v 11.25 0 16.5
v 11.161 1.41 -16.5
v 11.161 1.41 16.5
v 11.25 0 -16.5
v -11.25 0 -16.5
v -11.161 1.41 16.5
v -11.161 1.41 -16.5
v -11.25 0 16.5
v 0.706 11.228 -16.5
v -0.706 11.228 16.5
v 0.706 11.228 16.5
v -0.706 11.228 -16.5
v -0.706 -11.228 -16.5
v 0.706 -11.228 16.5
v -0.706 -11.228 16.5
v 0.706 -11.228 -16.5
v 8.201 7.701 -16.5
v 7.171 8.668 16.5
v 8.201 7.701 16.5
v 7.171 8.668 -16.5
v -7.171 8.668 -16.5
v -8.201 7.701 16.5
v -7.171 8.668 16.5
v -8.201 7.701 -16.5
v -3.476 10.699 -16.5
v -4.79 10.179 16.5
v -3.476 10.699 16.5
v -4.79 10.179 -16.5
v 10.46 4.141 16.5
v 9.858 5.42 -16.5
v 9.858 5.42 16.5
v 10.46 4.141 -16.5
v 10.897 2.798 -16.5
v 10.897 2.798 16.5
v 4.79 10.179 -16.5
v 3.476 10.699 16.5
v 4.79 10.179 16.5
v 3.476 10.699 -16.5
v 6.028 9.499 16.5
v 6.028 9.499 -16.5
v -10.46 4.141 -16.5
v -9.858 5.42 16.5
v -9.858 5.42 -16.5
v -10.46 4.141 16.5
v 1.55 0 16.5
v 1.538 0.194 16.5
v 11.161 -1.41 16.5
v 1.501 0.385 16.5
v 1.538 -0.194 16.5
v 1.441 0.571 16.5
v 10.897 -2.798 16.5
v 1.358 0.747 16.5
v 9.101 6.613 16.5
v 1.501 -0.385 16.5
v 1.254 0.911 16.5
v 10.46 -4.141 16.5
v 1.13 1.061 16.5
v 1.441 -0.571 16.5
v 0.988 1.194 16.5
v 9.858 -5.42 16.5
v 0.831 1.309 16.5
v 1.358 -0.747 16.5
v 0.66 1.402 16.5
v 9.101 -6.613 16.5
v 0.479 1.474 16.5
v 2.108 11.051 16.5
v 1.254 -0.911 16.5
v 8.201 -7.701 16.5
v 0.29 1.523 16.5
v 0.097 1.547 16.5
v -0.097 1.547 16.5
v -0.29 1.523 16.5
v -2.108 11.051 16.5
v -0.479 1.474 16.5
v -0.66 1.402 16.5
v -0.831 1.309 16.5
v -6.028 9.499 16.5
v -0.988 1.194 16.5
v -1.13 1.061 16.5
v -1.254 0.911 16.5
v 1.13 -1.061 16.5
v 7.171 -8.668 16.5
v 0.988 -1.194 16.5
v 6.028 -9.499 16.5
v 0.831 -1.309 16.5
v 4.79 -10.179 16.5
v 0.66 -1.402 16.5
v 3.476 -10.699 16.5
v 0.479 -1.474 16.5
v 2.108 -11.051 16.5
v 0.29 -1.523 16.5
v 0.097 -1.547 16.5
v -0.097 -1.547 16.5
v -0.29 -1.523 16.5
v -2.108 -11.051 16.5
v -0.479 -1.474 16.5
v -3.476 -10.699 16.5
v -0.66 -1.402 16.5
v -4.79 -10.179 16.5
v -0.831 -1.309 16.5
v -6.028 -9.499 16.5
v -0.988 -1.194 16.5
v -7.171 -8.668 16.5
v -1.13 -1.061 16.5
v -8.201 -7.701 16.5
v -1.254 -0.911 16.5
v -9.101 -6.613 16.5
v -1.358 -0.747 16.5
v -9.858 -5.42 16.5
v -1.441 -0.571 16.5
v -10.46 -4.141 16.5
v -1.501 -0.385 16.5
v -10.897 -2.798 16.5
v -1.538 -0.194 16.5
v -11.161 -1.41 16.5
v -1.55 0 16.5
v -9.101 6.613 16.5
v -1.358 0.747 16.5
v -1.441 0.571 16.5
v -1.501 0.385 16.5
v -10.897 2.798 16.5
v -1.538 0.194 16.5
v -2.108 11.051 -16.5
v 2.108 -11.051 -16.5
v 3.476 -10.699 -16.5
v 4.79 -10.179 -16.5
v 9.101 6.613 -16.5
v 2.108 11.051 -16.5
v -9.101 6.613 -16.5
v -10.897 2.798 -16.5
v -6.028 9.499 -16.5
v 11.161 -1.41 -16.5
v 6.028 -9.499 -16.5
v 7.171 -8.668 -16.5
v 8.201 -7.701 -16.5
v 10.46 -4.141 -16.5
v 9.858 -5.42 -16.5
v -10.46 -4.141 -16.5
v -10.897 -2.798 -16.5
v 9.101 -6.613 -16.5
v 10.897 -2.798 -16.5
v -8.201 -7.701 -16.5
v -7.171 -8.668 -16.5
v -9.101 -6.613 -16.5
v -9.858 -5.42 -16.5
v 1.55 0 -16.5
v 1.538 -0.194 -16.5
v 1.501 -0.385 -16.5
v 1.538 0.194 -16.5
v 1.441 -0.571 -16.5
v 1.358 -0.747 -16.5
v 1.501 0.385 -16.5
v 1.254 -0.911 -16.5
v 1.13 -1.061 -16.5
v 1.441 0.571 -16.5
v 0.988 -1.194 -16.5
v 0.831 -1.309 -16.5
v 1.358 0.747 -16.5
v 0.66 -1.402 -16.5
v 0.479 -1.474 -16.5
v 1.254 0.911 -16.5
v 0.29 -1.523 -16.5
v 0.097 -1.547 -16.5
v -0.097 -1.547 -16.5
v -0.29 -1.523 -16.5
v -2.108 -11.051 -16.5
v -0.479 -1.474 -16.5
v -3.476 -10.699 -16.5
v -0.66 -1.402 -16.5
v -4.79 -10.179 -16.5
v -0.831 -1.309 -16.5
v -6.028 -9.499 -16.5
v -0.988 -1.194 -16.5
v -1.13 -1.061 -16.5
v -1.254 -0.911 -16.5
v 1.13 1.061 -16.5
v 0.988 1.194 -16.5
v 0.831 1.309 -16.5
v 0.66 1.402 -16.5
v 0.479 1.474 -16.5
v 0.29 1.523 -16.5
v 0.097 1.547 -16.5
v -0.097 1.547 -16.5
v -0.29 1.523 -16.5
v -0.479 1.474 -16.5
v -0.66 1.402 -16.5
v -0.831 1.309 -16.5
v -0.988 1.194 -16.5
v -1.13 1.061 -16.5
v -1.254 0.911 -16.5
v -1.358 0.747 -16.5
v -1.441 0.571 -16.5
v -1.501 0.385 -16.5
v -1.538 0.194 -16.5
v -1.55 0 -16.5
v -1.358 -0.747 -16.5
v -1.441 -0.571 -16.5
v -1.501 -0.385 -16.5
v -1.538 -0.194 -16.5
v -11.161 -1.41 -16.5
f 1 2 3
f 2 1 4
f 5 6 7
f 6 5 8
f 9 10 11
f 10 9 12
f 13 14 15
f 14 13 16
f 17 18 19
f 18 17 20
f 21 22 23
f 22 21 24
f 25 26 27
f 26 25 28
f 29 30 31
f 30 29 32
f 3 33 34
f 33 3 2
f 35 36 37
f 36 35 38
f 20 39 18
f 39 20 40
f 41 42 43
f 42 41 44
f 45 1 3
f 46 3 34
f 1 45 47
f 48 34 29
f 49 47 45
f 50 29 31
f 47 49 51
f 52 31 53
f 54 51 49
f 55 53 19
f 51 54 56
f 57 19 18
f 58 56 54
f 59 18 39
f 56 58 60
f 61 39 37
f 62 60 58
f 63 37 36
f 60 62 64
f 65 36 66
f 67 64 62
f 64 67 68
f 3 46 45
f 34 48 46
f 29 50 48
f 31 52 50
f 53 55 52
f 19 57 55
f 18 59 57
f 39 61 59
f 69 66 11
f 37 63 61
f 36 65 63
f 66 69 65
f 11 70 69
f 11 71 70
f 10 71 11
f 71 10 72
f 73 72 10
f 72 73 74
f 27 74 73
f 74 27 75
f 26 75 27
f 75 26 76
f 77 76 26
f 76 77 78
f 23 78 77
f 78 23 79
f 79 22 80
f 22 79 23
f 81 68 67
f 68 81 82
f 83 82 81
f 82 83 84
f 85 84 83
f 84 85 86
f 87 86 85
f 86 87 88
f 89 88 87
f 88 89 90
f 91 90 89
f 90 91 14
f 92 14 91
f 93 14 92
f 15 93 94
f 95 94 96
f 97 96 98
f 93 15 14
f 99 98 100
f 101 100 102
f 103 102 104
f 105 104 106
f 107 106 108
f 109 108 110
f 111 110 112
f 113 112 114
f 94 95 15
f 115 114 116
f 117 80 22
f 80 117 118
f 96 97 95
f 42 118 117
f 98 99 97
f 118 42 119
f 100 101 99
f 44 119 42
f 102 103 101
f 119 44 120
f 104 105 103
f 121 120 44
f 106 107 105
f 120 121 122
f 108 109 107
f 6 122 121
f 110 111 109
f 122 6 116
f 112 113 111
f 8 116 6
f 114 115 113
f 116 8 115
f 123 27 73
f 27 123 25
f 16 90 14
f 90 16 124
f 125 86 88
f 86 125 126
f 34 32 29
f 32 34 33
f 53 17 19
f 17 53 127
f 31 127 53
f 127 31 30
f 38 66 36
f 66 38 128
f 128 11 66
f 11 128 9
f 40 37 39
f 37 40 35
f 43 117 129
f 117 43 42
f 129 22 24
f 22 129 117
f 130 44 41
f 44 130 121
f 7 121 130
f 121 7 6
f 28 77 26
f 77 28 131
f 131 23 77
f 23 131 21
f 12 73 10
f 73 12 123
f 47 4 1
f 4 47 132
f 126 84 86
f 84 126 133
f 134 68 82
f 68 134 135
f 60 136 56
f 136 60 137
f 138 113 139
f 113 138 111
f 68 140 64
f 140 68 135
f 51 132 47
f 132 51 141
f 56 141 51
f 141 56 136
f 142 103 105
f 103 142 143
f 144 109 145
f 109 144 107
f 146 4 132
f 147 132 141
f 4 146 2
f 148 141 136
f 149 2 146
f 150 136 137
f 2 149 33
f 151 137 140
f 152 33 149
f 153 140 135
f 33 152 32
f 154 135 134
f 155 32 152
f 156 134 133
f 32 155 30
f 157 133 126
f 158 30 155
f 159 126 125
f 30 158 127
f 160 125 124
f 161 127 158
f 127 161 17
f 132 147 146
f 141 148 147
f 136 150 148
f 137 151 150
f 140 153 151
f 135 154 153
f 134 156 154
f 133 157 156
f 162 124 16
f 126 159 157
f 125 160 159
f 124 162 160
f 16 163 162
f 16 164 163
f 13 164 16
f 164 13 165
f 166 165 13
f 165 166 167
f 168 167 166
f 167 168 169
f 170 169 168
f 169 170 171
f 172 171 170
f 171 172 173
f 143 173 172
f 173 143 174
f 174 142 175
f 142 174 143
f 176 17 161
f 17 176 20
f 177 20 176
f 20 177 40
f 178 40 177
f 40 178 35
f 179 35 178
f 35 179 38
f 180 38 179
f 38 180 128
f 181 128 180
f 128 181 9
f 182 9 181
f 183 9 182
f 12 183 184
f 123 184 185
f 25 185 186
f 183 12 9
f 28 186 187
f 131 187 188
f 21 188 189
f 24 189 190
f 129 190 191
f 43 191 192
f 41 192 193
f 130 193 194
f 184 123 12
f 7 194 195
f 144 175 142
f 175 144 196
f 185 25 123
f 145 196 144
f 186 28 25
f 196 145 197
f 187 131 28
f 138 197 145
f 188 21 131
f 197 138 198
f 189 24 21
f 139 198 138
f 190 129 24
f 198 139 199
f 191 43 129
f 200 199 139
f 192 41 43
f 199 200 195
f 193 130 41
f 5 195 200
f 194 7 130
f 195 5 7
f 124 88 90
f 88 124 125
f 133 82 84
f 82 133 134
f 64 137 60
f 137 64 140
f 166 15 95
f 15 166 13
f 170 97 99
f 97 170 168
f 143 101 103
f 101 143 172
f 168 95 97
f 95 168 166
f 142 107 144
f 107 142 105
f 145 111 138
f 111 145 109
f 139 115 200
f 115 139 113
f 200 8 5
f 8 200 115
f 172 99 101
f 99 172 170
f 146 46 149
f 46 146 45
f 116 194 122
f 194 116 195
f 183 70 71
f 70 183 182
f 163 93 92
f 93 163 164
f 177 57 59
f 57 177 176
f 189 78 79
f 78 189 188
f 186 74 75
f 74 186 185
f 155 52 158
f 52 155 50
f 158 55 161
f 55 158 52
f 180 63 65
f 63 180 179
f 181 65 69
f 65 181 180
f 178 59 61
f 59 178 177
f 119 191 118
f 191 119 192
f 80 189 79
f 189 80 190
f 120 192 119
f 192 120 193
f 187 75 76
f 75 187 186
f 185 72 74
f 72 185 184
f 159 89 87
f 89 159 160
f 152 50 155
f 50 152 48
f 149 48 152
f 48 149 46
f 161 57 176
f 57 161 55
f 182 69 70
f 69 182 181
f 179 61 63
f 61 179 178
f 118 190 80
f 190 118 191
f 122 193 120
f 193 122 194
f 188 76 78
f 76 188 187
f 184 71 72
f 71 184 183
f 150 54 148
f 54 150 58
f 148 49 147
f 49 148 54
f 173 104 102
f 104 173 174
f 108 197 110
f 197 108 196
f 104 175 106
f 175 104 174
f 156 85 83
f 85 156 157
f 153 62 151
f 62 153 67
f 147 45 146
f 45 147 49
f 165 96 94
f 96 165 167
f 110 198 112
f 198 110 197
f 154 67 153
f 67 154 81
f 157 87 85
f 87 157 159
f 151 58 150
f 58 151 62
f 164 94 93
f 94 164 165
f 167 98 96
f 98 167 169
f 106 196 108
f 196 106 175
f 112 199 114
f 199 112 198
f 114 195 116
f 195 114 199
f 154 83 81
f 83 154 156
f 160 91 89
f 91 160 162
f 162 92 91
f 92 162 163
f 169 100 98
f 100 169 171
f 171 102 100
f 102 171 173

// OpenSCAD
$fn = 50;


difference() {
	union() {
		translate(v = [0, 0, -16.5000000000]) {
			cylinder(h = 33, r = 11.2500000000);
		}
	}
	union() {
		translate(v = [0, 0, -100.0000000000]) {
			cylinder(h = 200, r = 1.5500000000);
		}
	}
}
